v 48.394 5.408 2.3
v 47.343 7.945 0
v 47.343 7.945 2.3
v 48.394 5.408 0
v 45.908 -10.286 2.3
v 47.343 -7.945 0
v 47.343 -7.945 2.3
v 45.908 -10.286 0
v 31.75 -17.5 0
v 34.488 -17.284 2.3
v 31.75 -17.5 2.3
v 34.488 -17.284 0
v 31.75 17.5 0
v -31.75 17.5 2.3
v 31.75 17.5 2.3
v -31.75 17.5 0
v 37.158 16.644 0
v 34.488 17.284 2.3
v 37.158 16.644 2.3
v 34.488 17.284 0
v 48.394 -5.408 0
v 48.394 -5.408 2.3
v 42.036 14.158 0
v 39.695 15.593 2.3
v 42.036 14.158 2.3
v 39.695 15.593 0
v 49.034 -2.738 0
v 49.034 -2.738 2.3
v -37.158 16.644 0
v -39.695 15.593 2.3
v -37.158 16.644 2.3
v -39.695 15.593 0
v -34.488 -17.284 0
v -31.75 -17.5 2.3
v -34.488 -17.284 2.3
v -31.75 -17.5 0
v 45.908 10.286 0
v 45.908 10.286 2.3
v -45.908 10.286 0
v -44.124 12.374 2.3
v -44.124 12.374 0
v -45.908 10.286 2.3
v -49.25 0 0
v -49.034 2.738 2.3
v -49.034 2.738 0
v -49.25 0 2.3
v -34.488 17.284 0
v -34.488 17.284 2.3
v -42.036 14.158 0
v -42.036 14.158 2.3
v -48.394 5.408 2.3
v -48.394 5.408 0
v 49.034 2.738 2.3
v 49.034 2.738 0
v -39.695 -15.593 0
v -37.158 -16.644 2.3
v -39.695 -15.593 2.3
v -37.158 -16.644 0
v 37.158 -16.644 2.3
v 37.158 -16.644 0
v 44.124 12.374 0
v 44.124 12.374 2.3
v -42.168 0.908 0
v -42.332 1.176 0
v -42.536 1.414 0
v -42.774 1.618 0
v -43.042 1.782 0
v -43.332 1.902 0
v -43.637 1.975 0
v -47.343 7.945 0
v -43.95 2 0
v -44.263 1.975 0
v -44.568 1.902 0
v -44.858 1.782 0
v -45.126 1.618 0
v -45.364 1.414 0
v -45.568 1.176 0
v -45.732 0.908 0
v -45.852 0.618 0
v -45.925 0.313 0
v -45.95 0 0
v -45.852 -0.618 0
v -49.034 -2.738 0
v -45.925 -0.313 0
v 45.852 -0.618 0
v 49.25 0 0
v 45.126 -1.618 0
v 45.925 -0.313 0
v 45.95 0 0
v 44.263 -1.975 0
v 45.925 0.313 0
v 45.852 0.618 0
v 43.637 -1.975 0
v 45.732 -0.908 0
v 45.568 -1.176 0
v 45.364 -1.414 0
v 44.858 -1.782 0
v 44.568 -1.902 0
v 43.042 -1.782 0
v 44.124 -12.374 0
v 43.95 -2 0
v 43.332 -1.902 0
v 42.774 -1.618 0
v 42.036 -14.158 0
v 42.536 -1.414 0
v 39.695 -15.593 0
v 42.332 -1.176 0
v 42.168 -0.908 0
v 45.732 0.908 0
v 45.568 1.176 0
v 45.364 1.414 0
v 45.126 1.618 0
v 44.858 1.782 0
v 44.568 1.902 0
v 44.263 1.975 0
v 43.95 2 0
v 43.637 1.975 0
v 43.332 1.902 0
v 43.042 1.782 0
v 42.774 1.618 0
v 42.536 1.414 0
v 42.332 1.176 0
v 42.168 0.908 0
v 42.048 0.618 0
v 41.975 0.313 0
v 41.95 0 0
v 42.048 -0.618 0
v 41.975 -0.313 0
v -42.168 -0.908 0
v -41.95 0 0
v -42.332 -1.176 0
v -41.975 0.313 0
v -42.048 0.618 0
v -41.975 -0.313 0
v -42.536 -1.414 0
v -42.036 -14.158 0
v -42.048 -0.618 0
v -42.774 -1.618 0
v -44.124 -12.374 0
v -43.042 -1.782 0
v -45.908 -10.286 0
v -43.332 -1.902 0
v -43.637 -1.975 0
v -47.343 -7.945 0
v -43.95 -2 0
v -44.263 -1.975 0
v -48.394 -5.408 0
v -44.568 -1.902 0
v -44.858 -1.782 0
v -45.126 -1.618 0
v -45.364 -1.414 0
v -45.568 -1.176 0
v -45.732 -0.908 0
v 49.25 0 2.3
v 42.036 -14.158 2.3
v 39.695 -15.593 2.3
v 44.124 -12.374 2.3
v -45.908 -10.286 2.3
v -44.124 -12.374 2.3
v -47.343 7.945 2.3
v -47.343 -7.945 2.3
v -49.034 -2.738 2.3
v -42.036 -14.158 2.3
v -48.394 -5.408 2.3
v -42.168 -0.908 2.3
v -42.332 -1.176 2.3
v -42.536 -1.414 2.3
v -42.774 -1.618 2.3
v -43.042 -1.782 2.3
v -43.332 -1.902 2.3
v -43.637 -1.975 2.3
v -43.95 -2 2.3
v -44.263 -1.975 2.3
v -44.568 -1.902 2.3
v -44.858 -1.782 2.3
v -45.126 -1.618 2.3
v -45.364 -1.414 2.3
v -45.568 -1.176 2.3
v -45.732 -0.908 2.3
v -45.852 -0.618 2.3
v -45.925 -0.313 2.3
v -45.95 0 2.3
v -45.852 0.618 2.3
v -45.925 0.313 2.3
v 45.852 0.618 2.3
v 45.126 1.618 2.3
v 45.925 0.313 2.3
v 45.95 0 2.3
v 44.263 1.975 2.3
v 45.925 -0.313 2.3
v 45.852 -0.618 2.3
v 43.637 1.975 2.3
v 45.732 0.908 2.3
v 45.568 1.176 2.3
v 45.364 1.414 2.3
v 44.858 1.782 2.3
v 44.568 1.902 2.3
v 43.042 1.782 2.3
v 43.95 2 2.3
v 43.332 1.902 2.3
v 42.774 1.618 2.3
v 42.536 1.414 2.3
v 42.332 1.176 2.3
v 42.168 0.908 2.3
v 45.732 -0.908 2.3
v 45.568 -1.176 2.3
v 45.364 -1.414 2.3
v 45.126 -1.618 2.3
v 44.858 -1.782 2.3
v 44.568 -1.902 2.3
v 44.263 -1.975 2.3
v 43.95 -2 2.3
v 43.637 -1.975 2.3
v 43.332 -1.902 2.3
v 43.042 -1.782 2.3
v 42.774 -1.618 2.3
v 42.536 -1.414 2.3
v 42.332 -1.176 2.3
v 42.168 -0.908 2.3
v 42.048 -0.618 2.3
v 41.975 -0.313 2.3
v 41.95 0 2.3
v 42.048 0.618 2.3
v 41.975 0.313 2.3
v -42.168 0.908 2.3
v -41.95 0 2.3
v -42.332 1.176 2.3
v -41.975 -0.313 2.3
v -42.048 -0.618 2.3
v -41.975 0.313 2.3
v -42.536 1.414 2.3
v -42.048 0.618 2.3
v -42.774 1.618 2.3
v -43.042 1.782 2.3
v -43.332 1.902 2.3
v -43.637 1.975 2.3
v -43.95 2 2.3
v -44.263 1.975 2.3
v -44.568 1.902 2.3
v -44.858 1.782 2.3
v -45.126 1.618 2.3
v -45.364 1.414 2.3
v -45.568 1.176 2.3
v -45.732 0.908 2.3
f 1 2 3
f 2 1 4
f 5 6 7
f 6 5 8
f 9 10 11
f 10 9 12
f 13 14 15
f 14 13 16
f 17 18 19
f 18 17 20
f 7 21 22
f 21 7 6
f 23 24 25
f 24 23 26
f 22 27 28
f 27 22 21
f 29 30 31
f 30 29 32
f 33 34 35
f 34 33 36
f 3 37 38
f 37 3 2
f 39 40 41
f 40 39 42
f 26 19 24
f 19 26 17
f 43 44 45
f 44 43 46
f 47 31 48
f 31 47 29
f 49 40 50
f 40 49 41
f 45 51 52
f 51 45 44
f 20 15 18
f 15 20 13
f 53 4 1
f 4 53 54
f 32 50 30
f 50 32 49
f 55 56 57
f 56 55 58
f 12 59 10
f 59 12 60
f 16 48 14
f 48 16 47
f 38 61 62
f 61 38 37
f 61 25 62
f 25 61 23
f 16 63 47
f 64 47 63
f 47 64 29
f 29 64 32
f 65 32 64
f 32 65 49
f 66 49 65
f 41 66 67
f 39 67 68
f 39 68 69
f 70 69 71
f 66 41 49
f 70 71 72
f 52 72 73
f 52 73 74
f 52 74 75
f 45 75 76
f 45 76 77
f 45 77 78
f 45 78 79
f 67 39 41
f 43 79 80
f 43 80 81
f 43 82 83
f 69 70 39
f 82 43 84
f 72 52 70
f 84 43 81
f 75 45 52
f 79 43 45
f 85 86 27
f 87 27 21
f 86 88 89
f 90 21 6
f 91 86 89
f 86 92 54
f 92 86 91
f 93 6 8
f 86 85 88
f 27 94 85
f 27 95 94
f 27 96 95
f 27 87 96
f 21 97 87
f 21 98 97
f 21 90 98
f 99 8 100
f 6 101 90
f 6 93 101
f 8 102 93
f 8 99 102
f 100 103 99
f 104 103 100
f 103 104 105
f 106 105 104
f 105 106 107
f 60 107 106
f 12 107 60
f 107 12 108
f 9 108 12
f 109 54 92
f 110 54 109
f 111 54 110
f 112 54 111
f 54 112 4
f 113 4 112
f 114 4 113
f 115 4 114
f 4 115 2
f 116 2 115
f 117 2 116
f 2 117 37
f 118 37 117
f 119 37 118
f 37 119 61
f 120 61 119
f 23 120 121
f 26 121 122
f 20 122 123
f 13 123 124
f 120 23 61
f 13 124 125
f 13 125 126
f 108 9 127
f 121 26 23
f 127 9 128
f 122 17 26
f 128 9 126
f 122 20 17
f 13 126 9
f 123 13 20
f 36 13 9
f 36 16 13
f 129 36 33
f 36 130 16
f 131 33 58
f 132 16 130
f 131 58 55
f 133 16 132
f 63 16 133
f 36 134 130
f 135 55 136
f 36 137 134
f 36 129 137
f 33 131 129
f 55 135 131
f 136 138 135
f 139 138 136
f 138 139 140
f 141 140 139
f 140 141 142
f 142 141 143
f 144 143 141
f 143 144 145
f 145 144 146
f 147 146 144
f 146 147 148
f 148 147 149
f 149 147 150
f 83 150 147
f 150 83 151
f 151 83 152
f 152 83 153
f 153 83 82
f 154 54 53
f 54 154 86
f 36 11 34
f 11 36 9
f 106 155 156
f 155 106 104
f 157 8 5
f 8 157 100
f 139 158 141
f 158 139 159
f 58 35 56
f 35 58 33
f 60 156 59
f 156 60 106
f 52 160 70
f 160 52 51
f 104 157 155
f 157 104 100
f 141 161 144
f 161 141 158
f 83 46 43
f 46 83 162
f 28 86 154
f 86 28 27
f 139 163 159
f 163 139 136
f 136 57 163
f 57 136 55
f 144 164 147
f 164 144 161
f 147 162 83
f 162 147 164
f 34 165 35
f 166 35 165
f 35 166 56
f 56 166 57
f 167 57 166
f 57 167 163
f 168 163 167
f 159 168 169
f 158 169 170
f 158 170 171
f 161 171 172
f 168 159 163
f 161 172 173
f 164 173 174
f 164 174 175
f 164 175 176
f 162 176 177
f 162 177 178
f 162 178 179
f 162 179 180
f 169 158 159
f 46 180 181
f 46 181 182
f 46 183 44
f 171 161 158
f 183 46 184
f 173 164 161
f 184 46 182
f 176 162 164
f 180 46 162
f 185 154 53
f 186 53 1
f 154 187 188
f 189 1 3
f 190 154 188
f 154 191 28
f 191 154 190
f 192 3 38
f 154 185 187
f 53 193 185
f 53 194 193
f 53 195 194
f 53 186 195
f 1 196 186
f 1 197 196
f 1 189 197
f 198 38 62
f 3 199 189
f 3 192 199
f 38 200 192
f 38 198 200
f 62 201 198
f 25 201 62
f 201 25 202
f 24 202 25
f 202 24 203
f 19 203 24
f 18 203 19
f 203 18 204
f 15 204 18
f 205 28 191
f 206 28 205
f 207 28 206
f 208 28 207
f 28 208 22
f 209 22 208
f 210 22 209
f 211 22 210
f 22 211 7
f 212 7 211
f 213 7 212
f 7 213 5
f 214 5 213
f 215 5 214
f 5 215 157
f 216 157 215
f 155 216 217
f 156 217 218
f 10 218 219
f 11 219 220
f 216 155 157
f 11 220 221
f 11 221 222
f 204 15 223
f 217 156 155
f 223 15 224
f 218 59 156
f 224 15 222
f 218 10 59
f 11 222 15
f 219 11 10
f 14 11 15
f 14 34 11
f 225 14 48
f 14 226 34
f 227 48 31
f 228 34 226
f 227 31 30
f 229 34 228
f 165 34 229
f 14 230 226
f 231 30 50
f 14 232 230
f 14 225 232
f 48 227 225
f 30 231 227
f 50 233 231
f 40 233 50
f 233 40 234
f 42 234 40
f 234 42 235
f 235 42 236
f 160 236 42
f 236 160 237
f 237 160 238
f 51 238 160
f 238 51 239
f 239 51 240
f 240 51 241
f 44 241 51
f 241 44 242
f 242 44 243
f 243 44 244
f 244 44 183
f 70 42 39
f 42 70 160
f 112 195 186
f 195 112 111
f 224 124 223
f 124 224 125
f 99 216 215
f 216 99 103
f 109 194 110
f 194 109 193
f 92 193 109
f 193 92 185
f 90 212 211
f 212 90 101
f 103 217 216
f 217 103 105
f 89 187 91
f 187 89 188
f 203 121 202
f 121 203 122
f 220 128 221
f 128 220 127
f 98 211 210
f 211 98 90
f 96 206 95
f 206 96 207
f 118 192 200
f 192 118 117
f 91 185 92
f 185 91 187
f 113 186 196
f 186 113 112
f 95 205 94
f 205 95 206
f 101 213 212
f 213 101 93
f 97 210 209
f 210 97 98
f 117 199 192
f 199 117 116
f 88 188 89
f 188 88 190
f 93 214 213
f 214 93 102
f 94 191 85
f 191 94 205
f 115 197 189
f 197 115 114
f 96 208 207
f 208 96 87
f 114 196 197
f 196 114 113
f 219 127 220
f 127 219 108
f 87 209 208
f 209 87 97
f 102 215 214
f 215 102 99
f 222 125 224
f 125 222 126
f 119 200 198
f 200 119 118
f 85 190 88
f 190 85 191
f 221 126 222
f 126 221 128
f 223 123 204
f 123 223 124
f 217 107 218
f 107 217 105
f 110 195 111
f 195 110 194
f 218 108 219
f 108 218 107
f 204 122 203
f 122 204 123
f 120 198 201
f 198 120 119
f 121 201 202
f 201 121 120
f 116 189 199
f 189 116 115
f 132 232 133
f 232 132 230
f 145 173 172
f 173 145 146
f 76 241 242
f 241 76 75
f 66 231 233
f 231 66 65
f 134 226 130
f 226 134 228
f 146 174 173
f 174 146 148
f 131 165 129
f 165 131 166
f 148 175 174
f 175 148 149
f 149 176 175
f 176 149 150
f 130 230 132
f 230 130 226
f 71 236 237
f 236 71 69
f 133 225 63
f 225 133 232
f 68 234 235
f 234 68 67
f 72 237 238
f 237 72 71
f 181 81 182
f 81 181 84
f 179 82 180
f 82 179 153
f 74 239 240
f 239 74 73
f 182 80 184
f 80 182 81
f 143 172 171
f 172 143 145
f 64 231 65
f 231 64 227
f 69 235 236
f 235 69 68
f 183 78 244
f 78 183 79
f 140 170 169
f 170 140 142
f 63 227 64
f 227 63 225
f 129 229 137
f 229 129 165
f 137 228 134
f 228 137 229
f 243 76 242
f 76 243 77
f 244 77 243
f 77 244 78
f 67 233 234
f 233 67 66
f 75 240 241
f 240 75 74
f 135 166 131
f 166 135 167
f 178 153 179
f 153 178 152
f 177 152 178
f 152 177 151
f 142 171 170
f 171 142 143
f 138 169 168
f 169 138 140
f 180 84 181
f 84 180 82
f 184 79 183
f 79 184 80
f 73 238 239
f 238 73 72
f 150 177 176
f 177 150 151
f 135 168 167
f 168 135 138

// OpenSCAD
width = 35;

gap = 63.5;
hole = 2;
th = 2.3;
size = 12;

insert = 3;

$fn = 40;
difference(){
    hull(){
        translate([gap/2, 0, 0]) cylinder(th, width/2, width/2);
        translate([-gap/2, 0, 0]) cylinder(th, width/2, width/2);
    }
    
    translate([gap/2 + width/2 - insert - th, 0, 0]) cylinder(th, hole, hole);
    translate([insert + th - gap/2 - width/2, 0, 0]) cylinder(th, hole, hole);
}
